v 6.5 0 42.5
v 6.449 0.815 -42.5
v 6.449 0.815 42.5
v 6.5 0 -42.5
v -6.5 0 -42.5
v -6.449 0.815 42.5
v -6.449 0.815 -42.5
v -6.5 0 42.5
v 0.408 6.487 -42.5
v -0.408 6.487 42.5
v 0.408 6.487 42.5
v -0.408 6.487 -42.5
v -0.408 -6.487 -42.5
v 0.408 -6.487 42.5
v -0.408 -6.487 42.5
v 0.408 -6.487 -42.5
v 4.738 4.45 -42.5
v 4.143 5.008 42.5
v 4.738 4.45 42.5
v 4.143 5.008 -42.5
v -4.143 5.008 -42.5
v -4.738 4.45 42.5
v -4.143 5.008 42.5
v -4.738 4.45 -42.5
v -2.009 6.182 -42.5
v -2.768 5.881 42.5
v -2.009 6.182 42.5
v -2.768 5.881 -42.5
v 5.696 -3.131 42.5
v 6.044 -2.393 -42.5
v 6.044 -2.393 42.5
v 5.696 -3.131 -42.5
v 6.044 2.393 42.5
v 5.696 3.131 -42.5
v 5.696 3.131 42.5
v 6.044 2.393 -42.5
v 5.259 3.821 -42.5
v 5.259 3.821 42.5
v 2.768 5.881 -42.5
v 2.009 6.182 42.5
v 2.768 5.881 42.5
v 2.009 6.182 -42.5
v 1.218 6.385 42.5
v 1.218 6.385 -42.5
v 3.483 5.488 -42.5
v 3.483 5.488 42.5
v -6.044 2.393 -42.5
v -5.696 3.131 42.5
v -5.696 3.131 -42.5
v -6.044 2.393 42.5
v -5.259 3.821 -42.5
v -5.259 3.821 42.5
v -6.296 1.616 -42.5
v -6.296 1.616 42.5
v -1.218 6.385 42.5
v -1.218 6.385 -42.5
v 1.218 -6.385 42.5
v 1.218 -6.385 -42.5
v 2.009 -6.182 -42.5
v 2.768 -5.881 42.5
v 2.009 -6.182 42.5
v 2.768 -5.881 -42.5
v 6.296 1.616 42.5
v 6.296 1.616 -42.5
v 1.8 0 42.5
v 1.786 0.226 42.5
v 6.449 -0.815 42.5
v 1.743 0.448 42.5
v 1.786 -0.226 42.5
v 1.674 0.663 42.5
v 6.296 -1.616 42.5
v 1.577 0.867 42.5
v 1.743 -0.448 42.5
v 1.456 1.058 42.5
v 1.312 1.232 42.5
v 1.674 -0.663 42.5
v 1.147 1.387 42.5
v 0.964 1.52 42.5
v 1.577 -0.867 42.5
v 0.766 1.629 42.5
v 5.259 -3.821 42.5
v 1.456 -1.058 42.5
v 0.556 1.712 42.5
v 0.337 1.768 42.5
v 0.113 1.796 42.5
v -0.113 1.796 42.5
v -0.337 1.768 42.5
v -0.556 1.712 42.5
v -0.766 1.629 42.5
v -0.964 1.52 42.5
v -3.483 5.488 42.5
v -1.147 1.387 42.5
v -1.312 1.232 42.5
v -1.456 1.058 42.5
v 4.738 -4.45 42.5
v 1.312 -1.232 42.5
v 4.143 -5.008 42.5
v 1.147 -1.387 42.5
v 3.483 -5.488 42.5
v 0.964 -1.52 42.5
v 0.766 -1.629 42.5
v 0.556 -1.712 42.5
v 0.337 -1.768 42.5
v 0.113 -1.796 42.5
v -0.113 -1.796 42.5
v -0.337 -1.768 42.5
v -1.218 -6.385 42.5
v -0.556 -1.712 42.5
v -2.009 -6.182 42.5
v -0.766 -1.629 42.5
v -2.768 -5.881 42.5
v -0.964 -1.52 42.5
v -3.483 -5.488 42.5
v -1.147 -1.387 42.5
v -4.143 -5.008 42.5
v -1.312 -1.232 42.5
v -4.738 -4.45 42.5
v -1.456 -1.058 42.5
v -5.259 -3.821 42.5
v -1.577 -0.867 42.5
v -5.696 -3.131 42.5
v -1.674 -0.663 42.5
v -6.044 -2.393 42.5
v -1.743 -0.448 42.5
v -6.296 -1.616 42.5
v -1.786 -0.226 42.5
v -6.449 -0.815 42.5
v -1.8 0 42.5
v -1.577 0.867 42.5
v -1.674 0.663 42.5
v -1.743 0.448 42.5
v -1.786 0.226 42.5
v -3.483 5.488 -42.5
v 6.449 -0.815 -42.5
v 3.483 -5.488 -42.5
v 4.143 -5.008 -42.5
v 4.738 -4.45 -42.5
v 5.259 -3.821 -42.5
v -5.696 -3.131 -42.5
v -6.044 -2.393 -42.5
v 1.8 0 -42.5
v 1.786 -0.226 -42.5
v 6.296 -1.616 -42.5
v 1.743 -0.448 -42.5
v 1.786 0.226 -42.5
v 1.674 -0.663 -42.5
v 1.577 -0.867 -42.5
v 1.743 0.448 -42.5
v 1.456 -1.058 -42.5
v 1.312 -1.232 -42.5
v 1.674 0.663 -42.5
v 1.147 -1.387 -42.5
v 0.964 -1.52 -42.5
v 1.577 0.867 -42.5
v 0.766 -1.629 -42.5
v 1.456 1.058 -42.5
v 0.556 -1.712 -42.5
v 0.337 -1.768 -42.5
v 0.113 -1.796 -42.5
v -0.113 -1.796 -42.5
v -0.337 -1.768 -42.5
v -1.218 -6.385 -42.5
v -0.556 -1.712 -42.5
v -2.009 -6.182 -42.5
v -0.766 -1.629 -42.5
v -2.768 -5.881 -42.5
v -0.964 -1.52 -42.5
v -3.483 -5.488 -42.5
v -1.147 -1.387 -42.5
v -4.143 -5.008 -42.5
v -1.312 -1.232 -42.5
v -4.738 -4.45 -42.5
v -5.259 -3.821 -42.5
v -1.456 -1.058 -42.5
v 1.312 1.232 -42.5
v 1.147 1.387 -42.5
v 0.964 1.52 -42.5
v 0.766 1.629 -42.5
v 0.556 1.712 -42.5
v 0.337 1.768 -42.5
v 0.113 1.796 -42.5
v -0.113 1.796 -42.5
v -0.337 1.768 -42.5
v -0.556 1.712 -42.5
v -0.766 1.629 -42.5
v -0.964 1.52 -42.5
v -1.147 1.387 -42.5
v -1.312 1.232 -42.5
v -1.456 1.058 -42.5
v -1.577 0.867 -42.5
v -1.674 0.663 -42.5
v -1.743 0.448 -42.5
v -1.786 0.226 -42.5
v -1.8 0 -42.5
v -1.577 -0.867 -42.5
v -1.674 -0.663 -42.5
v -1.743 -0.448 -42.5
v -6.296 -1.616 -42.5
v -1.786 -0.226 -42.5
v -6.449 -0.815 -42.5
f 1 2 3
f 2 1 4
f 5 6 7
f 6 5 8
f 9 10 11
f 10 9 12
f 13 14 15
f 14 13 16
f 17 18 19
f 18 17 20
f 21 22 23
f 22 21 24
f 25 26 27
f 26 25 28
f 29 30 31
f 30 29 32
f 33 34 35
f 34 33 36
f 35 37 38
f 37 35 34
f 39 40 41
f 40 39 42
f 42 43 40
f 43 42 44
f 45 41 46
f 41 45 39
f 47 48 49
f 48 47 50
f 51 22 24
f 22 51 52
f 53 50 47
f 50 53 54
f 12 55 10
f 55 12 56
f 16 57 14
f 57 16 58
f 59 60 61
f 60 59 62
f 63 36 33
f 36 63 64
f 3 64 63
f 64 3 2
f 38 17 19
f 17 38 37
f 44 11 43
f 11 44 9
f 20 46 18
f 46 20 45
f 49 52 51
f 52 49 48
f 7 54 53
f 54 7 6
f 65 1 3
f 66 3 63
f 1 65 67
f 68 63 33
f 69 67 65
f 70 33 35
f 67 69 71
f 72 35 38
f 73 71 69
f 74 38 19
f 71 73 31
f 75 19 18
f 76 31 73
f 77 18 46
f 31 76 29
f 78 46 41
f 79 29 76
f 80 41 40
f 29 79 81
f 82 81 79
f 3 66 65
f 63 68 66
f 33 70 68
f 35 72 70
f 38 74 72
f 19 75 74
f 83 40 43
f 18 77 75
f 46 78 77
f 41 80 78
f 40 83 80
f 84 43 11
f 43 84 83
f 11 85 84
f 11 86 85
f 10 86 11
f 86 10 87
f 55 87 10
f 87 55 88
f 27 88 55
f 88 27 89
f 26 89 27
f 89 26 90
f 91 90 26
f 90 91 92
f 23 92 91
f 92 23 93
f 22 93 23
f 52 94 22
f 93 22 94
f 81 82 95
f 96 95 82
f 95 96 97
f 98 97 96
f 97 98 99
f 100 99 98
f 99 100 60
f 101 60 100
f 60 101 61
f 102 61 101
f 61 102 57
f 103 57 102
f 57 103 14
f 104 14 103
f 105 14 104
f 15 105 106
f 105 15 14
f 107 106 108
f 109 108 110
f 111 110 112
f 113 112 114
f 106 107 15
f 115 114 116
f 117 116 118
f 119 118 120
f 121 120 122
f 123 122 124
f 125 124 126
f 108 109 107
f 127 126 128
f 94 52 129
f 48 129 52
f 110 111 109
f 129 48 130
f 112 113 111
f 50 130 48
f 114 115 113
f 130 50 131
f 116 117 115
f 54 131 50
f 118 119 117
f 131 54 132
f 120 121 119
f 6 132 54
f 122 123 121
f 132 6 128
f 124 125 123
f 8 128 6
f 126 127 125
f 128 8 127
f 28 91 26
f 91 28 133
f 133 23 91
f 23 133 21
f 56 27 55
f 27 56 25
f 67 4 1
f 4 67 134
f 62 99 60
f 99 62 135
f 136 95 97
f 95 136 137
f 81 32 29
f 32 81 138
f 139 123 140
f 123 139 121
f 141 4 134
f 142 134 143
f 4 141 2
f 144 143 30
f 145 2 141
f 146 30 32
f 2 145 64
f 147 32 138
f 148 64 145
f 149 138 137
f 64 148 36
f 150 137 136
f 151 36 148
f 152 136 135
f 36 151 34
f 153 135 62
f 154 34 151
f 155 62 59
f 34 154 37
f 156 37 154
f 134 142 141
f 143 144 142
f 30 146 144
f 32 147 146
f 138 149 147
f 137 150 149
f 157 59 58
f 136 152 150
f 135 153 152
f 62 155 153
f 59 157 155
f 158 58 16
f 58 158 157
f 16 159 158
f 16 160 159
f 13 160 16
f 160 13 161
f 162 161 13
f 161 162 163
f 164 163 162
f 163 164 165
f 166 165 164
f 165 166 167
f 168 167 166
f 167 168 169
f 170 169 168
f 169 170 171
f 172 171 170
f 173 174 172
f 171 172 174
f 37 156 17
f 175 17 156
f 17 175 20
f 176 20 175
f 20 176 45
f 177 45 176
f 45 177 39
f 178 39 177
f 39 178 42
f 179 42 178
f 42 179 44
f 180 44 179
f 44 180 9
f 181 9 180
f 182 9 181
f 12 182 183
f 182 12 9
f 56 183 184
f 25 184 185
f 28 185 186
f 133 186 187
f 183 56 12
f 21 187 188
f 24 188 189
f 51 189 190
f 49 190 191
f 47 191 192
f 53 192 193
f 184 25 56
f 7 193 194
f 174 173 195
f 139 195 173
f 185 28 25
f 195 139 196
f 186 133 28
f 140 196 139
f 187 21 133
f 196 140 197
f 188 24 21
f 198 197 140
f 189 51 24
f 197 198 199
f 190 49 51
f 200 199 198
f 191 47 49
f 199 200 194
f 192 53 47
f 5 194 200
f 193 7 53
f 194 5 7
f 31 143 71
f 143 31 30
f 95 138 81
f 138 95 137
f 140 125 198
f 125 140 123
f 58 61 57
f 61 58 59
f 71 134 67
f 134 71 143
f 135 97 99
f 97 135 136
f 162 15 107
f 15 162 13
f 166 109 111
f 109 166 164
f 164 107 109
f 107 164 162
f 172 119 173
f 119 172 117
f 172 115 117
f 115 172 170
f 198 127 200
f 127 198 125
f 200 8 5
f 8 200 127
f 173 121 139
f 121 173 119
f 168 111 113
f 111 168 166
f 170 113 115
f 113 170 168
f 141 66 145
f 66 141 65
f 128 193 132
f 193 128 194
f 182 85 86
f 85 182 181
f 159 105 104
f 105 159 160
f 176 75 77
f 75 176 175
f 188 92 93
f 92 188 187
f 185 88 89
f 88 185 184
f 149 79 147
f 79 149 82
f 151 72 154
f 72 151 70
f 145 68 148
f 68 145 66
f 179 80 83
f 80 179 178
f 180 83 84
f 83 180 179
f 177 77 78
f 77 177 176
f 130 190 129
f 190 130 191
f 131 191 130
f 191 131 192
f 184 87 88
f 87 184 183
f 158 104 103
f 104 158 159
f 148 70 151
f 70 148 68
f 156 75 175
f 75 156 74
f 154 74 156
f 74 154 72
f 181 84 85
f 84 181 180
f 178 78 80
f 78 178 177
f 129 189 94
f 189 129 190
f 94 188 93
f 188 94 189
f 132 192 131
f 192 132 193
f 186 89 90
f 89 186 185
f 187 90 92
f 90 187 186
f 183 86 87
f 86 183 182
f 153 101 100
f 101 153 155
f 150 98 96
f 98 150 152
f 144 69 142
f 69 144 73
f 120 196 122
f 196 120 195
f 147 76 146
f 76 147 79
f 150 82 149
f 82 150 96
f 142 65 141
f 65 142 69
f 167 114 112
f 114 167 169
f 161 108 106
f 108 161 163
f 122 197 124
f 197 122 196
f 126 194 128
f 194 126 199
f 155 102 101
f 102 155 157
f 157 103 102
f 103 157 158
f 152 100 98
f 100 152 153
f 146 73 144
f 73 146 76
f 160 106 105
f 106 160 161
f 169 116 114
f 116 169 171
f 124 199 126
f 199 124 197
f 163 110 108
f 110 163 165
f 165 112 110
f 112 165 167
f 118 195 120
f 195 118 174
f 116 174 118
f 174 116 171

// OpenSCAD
$fn = 50;


difference() {
	union() {
		translate(v = [0, 0, -42.5000000000]) {
			cylinder(h = 85, r = 6.5000000000);
		}
	}
	union() {
		translate(v = [0, 0, -100.0000000000]) {
			cylinder(h = 200, r = 1.8000000000);
		}
	}
}
